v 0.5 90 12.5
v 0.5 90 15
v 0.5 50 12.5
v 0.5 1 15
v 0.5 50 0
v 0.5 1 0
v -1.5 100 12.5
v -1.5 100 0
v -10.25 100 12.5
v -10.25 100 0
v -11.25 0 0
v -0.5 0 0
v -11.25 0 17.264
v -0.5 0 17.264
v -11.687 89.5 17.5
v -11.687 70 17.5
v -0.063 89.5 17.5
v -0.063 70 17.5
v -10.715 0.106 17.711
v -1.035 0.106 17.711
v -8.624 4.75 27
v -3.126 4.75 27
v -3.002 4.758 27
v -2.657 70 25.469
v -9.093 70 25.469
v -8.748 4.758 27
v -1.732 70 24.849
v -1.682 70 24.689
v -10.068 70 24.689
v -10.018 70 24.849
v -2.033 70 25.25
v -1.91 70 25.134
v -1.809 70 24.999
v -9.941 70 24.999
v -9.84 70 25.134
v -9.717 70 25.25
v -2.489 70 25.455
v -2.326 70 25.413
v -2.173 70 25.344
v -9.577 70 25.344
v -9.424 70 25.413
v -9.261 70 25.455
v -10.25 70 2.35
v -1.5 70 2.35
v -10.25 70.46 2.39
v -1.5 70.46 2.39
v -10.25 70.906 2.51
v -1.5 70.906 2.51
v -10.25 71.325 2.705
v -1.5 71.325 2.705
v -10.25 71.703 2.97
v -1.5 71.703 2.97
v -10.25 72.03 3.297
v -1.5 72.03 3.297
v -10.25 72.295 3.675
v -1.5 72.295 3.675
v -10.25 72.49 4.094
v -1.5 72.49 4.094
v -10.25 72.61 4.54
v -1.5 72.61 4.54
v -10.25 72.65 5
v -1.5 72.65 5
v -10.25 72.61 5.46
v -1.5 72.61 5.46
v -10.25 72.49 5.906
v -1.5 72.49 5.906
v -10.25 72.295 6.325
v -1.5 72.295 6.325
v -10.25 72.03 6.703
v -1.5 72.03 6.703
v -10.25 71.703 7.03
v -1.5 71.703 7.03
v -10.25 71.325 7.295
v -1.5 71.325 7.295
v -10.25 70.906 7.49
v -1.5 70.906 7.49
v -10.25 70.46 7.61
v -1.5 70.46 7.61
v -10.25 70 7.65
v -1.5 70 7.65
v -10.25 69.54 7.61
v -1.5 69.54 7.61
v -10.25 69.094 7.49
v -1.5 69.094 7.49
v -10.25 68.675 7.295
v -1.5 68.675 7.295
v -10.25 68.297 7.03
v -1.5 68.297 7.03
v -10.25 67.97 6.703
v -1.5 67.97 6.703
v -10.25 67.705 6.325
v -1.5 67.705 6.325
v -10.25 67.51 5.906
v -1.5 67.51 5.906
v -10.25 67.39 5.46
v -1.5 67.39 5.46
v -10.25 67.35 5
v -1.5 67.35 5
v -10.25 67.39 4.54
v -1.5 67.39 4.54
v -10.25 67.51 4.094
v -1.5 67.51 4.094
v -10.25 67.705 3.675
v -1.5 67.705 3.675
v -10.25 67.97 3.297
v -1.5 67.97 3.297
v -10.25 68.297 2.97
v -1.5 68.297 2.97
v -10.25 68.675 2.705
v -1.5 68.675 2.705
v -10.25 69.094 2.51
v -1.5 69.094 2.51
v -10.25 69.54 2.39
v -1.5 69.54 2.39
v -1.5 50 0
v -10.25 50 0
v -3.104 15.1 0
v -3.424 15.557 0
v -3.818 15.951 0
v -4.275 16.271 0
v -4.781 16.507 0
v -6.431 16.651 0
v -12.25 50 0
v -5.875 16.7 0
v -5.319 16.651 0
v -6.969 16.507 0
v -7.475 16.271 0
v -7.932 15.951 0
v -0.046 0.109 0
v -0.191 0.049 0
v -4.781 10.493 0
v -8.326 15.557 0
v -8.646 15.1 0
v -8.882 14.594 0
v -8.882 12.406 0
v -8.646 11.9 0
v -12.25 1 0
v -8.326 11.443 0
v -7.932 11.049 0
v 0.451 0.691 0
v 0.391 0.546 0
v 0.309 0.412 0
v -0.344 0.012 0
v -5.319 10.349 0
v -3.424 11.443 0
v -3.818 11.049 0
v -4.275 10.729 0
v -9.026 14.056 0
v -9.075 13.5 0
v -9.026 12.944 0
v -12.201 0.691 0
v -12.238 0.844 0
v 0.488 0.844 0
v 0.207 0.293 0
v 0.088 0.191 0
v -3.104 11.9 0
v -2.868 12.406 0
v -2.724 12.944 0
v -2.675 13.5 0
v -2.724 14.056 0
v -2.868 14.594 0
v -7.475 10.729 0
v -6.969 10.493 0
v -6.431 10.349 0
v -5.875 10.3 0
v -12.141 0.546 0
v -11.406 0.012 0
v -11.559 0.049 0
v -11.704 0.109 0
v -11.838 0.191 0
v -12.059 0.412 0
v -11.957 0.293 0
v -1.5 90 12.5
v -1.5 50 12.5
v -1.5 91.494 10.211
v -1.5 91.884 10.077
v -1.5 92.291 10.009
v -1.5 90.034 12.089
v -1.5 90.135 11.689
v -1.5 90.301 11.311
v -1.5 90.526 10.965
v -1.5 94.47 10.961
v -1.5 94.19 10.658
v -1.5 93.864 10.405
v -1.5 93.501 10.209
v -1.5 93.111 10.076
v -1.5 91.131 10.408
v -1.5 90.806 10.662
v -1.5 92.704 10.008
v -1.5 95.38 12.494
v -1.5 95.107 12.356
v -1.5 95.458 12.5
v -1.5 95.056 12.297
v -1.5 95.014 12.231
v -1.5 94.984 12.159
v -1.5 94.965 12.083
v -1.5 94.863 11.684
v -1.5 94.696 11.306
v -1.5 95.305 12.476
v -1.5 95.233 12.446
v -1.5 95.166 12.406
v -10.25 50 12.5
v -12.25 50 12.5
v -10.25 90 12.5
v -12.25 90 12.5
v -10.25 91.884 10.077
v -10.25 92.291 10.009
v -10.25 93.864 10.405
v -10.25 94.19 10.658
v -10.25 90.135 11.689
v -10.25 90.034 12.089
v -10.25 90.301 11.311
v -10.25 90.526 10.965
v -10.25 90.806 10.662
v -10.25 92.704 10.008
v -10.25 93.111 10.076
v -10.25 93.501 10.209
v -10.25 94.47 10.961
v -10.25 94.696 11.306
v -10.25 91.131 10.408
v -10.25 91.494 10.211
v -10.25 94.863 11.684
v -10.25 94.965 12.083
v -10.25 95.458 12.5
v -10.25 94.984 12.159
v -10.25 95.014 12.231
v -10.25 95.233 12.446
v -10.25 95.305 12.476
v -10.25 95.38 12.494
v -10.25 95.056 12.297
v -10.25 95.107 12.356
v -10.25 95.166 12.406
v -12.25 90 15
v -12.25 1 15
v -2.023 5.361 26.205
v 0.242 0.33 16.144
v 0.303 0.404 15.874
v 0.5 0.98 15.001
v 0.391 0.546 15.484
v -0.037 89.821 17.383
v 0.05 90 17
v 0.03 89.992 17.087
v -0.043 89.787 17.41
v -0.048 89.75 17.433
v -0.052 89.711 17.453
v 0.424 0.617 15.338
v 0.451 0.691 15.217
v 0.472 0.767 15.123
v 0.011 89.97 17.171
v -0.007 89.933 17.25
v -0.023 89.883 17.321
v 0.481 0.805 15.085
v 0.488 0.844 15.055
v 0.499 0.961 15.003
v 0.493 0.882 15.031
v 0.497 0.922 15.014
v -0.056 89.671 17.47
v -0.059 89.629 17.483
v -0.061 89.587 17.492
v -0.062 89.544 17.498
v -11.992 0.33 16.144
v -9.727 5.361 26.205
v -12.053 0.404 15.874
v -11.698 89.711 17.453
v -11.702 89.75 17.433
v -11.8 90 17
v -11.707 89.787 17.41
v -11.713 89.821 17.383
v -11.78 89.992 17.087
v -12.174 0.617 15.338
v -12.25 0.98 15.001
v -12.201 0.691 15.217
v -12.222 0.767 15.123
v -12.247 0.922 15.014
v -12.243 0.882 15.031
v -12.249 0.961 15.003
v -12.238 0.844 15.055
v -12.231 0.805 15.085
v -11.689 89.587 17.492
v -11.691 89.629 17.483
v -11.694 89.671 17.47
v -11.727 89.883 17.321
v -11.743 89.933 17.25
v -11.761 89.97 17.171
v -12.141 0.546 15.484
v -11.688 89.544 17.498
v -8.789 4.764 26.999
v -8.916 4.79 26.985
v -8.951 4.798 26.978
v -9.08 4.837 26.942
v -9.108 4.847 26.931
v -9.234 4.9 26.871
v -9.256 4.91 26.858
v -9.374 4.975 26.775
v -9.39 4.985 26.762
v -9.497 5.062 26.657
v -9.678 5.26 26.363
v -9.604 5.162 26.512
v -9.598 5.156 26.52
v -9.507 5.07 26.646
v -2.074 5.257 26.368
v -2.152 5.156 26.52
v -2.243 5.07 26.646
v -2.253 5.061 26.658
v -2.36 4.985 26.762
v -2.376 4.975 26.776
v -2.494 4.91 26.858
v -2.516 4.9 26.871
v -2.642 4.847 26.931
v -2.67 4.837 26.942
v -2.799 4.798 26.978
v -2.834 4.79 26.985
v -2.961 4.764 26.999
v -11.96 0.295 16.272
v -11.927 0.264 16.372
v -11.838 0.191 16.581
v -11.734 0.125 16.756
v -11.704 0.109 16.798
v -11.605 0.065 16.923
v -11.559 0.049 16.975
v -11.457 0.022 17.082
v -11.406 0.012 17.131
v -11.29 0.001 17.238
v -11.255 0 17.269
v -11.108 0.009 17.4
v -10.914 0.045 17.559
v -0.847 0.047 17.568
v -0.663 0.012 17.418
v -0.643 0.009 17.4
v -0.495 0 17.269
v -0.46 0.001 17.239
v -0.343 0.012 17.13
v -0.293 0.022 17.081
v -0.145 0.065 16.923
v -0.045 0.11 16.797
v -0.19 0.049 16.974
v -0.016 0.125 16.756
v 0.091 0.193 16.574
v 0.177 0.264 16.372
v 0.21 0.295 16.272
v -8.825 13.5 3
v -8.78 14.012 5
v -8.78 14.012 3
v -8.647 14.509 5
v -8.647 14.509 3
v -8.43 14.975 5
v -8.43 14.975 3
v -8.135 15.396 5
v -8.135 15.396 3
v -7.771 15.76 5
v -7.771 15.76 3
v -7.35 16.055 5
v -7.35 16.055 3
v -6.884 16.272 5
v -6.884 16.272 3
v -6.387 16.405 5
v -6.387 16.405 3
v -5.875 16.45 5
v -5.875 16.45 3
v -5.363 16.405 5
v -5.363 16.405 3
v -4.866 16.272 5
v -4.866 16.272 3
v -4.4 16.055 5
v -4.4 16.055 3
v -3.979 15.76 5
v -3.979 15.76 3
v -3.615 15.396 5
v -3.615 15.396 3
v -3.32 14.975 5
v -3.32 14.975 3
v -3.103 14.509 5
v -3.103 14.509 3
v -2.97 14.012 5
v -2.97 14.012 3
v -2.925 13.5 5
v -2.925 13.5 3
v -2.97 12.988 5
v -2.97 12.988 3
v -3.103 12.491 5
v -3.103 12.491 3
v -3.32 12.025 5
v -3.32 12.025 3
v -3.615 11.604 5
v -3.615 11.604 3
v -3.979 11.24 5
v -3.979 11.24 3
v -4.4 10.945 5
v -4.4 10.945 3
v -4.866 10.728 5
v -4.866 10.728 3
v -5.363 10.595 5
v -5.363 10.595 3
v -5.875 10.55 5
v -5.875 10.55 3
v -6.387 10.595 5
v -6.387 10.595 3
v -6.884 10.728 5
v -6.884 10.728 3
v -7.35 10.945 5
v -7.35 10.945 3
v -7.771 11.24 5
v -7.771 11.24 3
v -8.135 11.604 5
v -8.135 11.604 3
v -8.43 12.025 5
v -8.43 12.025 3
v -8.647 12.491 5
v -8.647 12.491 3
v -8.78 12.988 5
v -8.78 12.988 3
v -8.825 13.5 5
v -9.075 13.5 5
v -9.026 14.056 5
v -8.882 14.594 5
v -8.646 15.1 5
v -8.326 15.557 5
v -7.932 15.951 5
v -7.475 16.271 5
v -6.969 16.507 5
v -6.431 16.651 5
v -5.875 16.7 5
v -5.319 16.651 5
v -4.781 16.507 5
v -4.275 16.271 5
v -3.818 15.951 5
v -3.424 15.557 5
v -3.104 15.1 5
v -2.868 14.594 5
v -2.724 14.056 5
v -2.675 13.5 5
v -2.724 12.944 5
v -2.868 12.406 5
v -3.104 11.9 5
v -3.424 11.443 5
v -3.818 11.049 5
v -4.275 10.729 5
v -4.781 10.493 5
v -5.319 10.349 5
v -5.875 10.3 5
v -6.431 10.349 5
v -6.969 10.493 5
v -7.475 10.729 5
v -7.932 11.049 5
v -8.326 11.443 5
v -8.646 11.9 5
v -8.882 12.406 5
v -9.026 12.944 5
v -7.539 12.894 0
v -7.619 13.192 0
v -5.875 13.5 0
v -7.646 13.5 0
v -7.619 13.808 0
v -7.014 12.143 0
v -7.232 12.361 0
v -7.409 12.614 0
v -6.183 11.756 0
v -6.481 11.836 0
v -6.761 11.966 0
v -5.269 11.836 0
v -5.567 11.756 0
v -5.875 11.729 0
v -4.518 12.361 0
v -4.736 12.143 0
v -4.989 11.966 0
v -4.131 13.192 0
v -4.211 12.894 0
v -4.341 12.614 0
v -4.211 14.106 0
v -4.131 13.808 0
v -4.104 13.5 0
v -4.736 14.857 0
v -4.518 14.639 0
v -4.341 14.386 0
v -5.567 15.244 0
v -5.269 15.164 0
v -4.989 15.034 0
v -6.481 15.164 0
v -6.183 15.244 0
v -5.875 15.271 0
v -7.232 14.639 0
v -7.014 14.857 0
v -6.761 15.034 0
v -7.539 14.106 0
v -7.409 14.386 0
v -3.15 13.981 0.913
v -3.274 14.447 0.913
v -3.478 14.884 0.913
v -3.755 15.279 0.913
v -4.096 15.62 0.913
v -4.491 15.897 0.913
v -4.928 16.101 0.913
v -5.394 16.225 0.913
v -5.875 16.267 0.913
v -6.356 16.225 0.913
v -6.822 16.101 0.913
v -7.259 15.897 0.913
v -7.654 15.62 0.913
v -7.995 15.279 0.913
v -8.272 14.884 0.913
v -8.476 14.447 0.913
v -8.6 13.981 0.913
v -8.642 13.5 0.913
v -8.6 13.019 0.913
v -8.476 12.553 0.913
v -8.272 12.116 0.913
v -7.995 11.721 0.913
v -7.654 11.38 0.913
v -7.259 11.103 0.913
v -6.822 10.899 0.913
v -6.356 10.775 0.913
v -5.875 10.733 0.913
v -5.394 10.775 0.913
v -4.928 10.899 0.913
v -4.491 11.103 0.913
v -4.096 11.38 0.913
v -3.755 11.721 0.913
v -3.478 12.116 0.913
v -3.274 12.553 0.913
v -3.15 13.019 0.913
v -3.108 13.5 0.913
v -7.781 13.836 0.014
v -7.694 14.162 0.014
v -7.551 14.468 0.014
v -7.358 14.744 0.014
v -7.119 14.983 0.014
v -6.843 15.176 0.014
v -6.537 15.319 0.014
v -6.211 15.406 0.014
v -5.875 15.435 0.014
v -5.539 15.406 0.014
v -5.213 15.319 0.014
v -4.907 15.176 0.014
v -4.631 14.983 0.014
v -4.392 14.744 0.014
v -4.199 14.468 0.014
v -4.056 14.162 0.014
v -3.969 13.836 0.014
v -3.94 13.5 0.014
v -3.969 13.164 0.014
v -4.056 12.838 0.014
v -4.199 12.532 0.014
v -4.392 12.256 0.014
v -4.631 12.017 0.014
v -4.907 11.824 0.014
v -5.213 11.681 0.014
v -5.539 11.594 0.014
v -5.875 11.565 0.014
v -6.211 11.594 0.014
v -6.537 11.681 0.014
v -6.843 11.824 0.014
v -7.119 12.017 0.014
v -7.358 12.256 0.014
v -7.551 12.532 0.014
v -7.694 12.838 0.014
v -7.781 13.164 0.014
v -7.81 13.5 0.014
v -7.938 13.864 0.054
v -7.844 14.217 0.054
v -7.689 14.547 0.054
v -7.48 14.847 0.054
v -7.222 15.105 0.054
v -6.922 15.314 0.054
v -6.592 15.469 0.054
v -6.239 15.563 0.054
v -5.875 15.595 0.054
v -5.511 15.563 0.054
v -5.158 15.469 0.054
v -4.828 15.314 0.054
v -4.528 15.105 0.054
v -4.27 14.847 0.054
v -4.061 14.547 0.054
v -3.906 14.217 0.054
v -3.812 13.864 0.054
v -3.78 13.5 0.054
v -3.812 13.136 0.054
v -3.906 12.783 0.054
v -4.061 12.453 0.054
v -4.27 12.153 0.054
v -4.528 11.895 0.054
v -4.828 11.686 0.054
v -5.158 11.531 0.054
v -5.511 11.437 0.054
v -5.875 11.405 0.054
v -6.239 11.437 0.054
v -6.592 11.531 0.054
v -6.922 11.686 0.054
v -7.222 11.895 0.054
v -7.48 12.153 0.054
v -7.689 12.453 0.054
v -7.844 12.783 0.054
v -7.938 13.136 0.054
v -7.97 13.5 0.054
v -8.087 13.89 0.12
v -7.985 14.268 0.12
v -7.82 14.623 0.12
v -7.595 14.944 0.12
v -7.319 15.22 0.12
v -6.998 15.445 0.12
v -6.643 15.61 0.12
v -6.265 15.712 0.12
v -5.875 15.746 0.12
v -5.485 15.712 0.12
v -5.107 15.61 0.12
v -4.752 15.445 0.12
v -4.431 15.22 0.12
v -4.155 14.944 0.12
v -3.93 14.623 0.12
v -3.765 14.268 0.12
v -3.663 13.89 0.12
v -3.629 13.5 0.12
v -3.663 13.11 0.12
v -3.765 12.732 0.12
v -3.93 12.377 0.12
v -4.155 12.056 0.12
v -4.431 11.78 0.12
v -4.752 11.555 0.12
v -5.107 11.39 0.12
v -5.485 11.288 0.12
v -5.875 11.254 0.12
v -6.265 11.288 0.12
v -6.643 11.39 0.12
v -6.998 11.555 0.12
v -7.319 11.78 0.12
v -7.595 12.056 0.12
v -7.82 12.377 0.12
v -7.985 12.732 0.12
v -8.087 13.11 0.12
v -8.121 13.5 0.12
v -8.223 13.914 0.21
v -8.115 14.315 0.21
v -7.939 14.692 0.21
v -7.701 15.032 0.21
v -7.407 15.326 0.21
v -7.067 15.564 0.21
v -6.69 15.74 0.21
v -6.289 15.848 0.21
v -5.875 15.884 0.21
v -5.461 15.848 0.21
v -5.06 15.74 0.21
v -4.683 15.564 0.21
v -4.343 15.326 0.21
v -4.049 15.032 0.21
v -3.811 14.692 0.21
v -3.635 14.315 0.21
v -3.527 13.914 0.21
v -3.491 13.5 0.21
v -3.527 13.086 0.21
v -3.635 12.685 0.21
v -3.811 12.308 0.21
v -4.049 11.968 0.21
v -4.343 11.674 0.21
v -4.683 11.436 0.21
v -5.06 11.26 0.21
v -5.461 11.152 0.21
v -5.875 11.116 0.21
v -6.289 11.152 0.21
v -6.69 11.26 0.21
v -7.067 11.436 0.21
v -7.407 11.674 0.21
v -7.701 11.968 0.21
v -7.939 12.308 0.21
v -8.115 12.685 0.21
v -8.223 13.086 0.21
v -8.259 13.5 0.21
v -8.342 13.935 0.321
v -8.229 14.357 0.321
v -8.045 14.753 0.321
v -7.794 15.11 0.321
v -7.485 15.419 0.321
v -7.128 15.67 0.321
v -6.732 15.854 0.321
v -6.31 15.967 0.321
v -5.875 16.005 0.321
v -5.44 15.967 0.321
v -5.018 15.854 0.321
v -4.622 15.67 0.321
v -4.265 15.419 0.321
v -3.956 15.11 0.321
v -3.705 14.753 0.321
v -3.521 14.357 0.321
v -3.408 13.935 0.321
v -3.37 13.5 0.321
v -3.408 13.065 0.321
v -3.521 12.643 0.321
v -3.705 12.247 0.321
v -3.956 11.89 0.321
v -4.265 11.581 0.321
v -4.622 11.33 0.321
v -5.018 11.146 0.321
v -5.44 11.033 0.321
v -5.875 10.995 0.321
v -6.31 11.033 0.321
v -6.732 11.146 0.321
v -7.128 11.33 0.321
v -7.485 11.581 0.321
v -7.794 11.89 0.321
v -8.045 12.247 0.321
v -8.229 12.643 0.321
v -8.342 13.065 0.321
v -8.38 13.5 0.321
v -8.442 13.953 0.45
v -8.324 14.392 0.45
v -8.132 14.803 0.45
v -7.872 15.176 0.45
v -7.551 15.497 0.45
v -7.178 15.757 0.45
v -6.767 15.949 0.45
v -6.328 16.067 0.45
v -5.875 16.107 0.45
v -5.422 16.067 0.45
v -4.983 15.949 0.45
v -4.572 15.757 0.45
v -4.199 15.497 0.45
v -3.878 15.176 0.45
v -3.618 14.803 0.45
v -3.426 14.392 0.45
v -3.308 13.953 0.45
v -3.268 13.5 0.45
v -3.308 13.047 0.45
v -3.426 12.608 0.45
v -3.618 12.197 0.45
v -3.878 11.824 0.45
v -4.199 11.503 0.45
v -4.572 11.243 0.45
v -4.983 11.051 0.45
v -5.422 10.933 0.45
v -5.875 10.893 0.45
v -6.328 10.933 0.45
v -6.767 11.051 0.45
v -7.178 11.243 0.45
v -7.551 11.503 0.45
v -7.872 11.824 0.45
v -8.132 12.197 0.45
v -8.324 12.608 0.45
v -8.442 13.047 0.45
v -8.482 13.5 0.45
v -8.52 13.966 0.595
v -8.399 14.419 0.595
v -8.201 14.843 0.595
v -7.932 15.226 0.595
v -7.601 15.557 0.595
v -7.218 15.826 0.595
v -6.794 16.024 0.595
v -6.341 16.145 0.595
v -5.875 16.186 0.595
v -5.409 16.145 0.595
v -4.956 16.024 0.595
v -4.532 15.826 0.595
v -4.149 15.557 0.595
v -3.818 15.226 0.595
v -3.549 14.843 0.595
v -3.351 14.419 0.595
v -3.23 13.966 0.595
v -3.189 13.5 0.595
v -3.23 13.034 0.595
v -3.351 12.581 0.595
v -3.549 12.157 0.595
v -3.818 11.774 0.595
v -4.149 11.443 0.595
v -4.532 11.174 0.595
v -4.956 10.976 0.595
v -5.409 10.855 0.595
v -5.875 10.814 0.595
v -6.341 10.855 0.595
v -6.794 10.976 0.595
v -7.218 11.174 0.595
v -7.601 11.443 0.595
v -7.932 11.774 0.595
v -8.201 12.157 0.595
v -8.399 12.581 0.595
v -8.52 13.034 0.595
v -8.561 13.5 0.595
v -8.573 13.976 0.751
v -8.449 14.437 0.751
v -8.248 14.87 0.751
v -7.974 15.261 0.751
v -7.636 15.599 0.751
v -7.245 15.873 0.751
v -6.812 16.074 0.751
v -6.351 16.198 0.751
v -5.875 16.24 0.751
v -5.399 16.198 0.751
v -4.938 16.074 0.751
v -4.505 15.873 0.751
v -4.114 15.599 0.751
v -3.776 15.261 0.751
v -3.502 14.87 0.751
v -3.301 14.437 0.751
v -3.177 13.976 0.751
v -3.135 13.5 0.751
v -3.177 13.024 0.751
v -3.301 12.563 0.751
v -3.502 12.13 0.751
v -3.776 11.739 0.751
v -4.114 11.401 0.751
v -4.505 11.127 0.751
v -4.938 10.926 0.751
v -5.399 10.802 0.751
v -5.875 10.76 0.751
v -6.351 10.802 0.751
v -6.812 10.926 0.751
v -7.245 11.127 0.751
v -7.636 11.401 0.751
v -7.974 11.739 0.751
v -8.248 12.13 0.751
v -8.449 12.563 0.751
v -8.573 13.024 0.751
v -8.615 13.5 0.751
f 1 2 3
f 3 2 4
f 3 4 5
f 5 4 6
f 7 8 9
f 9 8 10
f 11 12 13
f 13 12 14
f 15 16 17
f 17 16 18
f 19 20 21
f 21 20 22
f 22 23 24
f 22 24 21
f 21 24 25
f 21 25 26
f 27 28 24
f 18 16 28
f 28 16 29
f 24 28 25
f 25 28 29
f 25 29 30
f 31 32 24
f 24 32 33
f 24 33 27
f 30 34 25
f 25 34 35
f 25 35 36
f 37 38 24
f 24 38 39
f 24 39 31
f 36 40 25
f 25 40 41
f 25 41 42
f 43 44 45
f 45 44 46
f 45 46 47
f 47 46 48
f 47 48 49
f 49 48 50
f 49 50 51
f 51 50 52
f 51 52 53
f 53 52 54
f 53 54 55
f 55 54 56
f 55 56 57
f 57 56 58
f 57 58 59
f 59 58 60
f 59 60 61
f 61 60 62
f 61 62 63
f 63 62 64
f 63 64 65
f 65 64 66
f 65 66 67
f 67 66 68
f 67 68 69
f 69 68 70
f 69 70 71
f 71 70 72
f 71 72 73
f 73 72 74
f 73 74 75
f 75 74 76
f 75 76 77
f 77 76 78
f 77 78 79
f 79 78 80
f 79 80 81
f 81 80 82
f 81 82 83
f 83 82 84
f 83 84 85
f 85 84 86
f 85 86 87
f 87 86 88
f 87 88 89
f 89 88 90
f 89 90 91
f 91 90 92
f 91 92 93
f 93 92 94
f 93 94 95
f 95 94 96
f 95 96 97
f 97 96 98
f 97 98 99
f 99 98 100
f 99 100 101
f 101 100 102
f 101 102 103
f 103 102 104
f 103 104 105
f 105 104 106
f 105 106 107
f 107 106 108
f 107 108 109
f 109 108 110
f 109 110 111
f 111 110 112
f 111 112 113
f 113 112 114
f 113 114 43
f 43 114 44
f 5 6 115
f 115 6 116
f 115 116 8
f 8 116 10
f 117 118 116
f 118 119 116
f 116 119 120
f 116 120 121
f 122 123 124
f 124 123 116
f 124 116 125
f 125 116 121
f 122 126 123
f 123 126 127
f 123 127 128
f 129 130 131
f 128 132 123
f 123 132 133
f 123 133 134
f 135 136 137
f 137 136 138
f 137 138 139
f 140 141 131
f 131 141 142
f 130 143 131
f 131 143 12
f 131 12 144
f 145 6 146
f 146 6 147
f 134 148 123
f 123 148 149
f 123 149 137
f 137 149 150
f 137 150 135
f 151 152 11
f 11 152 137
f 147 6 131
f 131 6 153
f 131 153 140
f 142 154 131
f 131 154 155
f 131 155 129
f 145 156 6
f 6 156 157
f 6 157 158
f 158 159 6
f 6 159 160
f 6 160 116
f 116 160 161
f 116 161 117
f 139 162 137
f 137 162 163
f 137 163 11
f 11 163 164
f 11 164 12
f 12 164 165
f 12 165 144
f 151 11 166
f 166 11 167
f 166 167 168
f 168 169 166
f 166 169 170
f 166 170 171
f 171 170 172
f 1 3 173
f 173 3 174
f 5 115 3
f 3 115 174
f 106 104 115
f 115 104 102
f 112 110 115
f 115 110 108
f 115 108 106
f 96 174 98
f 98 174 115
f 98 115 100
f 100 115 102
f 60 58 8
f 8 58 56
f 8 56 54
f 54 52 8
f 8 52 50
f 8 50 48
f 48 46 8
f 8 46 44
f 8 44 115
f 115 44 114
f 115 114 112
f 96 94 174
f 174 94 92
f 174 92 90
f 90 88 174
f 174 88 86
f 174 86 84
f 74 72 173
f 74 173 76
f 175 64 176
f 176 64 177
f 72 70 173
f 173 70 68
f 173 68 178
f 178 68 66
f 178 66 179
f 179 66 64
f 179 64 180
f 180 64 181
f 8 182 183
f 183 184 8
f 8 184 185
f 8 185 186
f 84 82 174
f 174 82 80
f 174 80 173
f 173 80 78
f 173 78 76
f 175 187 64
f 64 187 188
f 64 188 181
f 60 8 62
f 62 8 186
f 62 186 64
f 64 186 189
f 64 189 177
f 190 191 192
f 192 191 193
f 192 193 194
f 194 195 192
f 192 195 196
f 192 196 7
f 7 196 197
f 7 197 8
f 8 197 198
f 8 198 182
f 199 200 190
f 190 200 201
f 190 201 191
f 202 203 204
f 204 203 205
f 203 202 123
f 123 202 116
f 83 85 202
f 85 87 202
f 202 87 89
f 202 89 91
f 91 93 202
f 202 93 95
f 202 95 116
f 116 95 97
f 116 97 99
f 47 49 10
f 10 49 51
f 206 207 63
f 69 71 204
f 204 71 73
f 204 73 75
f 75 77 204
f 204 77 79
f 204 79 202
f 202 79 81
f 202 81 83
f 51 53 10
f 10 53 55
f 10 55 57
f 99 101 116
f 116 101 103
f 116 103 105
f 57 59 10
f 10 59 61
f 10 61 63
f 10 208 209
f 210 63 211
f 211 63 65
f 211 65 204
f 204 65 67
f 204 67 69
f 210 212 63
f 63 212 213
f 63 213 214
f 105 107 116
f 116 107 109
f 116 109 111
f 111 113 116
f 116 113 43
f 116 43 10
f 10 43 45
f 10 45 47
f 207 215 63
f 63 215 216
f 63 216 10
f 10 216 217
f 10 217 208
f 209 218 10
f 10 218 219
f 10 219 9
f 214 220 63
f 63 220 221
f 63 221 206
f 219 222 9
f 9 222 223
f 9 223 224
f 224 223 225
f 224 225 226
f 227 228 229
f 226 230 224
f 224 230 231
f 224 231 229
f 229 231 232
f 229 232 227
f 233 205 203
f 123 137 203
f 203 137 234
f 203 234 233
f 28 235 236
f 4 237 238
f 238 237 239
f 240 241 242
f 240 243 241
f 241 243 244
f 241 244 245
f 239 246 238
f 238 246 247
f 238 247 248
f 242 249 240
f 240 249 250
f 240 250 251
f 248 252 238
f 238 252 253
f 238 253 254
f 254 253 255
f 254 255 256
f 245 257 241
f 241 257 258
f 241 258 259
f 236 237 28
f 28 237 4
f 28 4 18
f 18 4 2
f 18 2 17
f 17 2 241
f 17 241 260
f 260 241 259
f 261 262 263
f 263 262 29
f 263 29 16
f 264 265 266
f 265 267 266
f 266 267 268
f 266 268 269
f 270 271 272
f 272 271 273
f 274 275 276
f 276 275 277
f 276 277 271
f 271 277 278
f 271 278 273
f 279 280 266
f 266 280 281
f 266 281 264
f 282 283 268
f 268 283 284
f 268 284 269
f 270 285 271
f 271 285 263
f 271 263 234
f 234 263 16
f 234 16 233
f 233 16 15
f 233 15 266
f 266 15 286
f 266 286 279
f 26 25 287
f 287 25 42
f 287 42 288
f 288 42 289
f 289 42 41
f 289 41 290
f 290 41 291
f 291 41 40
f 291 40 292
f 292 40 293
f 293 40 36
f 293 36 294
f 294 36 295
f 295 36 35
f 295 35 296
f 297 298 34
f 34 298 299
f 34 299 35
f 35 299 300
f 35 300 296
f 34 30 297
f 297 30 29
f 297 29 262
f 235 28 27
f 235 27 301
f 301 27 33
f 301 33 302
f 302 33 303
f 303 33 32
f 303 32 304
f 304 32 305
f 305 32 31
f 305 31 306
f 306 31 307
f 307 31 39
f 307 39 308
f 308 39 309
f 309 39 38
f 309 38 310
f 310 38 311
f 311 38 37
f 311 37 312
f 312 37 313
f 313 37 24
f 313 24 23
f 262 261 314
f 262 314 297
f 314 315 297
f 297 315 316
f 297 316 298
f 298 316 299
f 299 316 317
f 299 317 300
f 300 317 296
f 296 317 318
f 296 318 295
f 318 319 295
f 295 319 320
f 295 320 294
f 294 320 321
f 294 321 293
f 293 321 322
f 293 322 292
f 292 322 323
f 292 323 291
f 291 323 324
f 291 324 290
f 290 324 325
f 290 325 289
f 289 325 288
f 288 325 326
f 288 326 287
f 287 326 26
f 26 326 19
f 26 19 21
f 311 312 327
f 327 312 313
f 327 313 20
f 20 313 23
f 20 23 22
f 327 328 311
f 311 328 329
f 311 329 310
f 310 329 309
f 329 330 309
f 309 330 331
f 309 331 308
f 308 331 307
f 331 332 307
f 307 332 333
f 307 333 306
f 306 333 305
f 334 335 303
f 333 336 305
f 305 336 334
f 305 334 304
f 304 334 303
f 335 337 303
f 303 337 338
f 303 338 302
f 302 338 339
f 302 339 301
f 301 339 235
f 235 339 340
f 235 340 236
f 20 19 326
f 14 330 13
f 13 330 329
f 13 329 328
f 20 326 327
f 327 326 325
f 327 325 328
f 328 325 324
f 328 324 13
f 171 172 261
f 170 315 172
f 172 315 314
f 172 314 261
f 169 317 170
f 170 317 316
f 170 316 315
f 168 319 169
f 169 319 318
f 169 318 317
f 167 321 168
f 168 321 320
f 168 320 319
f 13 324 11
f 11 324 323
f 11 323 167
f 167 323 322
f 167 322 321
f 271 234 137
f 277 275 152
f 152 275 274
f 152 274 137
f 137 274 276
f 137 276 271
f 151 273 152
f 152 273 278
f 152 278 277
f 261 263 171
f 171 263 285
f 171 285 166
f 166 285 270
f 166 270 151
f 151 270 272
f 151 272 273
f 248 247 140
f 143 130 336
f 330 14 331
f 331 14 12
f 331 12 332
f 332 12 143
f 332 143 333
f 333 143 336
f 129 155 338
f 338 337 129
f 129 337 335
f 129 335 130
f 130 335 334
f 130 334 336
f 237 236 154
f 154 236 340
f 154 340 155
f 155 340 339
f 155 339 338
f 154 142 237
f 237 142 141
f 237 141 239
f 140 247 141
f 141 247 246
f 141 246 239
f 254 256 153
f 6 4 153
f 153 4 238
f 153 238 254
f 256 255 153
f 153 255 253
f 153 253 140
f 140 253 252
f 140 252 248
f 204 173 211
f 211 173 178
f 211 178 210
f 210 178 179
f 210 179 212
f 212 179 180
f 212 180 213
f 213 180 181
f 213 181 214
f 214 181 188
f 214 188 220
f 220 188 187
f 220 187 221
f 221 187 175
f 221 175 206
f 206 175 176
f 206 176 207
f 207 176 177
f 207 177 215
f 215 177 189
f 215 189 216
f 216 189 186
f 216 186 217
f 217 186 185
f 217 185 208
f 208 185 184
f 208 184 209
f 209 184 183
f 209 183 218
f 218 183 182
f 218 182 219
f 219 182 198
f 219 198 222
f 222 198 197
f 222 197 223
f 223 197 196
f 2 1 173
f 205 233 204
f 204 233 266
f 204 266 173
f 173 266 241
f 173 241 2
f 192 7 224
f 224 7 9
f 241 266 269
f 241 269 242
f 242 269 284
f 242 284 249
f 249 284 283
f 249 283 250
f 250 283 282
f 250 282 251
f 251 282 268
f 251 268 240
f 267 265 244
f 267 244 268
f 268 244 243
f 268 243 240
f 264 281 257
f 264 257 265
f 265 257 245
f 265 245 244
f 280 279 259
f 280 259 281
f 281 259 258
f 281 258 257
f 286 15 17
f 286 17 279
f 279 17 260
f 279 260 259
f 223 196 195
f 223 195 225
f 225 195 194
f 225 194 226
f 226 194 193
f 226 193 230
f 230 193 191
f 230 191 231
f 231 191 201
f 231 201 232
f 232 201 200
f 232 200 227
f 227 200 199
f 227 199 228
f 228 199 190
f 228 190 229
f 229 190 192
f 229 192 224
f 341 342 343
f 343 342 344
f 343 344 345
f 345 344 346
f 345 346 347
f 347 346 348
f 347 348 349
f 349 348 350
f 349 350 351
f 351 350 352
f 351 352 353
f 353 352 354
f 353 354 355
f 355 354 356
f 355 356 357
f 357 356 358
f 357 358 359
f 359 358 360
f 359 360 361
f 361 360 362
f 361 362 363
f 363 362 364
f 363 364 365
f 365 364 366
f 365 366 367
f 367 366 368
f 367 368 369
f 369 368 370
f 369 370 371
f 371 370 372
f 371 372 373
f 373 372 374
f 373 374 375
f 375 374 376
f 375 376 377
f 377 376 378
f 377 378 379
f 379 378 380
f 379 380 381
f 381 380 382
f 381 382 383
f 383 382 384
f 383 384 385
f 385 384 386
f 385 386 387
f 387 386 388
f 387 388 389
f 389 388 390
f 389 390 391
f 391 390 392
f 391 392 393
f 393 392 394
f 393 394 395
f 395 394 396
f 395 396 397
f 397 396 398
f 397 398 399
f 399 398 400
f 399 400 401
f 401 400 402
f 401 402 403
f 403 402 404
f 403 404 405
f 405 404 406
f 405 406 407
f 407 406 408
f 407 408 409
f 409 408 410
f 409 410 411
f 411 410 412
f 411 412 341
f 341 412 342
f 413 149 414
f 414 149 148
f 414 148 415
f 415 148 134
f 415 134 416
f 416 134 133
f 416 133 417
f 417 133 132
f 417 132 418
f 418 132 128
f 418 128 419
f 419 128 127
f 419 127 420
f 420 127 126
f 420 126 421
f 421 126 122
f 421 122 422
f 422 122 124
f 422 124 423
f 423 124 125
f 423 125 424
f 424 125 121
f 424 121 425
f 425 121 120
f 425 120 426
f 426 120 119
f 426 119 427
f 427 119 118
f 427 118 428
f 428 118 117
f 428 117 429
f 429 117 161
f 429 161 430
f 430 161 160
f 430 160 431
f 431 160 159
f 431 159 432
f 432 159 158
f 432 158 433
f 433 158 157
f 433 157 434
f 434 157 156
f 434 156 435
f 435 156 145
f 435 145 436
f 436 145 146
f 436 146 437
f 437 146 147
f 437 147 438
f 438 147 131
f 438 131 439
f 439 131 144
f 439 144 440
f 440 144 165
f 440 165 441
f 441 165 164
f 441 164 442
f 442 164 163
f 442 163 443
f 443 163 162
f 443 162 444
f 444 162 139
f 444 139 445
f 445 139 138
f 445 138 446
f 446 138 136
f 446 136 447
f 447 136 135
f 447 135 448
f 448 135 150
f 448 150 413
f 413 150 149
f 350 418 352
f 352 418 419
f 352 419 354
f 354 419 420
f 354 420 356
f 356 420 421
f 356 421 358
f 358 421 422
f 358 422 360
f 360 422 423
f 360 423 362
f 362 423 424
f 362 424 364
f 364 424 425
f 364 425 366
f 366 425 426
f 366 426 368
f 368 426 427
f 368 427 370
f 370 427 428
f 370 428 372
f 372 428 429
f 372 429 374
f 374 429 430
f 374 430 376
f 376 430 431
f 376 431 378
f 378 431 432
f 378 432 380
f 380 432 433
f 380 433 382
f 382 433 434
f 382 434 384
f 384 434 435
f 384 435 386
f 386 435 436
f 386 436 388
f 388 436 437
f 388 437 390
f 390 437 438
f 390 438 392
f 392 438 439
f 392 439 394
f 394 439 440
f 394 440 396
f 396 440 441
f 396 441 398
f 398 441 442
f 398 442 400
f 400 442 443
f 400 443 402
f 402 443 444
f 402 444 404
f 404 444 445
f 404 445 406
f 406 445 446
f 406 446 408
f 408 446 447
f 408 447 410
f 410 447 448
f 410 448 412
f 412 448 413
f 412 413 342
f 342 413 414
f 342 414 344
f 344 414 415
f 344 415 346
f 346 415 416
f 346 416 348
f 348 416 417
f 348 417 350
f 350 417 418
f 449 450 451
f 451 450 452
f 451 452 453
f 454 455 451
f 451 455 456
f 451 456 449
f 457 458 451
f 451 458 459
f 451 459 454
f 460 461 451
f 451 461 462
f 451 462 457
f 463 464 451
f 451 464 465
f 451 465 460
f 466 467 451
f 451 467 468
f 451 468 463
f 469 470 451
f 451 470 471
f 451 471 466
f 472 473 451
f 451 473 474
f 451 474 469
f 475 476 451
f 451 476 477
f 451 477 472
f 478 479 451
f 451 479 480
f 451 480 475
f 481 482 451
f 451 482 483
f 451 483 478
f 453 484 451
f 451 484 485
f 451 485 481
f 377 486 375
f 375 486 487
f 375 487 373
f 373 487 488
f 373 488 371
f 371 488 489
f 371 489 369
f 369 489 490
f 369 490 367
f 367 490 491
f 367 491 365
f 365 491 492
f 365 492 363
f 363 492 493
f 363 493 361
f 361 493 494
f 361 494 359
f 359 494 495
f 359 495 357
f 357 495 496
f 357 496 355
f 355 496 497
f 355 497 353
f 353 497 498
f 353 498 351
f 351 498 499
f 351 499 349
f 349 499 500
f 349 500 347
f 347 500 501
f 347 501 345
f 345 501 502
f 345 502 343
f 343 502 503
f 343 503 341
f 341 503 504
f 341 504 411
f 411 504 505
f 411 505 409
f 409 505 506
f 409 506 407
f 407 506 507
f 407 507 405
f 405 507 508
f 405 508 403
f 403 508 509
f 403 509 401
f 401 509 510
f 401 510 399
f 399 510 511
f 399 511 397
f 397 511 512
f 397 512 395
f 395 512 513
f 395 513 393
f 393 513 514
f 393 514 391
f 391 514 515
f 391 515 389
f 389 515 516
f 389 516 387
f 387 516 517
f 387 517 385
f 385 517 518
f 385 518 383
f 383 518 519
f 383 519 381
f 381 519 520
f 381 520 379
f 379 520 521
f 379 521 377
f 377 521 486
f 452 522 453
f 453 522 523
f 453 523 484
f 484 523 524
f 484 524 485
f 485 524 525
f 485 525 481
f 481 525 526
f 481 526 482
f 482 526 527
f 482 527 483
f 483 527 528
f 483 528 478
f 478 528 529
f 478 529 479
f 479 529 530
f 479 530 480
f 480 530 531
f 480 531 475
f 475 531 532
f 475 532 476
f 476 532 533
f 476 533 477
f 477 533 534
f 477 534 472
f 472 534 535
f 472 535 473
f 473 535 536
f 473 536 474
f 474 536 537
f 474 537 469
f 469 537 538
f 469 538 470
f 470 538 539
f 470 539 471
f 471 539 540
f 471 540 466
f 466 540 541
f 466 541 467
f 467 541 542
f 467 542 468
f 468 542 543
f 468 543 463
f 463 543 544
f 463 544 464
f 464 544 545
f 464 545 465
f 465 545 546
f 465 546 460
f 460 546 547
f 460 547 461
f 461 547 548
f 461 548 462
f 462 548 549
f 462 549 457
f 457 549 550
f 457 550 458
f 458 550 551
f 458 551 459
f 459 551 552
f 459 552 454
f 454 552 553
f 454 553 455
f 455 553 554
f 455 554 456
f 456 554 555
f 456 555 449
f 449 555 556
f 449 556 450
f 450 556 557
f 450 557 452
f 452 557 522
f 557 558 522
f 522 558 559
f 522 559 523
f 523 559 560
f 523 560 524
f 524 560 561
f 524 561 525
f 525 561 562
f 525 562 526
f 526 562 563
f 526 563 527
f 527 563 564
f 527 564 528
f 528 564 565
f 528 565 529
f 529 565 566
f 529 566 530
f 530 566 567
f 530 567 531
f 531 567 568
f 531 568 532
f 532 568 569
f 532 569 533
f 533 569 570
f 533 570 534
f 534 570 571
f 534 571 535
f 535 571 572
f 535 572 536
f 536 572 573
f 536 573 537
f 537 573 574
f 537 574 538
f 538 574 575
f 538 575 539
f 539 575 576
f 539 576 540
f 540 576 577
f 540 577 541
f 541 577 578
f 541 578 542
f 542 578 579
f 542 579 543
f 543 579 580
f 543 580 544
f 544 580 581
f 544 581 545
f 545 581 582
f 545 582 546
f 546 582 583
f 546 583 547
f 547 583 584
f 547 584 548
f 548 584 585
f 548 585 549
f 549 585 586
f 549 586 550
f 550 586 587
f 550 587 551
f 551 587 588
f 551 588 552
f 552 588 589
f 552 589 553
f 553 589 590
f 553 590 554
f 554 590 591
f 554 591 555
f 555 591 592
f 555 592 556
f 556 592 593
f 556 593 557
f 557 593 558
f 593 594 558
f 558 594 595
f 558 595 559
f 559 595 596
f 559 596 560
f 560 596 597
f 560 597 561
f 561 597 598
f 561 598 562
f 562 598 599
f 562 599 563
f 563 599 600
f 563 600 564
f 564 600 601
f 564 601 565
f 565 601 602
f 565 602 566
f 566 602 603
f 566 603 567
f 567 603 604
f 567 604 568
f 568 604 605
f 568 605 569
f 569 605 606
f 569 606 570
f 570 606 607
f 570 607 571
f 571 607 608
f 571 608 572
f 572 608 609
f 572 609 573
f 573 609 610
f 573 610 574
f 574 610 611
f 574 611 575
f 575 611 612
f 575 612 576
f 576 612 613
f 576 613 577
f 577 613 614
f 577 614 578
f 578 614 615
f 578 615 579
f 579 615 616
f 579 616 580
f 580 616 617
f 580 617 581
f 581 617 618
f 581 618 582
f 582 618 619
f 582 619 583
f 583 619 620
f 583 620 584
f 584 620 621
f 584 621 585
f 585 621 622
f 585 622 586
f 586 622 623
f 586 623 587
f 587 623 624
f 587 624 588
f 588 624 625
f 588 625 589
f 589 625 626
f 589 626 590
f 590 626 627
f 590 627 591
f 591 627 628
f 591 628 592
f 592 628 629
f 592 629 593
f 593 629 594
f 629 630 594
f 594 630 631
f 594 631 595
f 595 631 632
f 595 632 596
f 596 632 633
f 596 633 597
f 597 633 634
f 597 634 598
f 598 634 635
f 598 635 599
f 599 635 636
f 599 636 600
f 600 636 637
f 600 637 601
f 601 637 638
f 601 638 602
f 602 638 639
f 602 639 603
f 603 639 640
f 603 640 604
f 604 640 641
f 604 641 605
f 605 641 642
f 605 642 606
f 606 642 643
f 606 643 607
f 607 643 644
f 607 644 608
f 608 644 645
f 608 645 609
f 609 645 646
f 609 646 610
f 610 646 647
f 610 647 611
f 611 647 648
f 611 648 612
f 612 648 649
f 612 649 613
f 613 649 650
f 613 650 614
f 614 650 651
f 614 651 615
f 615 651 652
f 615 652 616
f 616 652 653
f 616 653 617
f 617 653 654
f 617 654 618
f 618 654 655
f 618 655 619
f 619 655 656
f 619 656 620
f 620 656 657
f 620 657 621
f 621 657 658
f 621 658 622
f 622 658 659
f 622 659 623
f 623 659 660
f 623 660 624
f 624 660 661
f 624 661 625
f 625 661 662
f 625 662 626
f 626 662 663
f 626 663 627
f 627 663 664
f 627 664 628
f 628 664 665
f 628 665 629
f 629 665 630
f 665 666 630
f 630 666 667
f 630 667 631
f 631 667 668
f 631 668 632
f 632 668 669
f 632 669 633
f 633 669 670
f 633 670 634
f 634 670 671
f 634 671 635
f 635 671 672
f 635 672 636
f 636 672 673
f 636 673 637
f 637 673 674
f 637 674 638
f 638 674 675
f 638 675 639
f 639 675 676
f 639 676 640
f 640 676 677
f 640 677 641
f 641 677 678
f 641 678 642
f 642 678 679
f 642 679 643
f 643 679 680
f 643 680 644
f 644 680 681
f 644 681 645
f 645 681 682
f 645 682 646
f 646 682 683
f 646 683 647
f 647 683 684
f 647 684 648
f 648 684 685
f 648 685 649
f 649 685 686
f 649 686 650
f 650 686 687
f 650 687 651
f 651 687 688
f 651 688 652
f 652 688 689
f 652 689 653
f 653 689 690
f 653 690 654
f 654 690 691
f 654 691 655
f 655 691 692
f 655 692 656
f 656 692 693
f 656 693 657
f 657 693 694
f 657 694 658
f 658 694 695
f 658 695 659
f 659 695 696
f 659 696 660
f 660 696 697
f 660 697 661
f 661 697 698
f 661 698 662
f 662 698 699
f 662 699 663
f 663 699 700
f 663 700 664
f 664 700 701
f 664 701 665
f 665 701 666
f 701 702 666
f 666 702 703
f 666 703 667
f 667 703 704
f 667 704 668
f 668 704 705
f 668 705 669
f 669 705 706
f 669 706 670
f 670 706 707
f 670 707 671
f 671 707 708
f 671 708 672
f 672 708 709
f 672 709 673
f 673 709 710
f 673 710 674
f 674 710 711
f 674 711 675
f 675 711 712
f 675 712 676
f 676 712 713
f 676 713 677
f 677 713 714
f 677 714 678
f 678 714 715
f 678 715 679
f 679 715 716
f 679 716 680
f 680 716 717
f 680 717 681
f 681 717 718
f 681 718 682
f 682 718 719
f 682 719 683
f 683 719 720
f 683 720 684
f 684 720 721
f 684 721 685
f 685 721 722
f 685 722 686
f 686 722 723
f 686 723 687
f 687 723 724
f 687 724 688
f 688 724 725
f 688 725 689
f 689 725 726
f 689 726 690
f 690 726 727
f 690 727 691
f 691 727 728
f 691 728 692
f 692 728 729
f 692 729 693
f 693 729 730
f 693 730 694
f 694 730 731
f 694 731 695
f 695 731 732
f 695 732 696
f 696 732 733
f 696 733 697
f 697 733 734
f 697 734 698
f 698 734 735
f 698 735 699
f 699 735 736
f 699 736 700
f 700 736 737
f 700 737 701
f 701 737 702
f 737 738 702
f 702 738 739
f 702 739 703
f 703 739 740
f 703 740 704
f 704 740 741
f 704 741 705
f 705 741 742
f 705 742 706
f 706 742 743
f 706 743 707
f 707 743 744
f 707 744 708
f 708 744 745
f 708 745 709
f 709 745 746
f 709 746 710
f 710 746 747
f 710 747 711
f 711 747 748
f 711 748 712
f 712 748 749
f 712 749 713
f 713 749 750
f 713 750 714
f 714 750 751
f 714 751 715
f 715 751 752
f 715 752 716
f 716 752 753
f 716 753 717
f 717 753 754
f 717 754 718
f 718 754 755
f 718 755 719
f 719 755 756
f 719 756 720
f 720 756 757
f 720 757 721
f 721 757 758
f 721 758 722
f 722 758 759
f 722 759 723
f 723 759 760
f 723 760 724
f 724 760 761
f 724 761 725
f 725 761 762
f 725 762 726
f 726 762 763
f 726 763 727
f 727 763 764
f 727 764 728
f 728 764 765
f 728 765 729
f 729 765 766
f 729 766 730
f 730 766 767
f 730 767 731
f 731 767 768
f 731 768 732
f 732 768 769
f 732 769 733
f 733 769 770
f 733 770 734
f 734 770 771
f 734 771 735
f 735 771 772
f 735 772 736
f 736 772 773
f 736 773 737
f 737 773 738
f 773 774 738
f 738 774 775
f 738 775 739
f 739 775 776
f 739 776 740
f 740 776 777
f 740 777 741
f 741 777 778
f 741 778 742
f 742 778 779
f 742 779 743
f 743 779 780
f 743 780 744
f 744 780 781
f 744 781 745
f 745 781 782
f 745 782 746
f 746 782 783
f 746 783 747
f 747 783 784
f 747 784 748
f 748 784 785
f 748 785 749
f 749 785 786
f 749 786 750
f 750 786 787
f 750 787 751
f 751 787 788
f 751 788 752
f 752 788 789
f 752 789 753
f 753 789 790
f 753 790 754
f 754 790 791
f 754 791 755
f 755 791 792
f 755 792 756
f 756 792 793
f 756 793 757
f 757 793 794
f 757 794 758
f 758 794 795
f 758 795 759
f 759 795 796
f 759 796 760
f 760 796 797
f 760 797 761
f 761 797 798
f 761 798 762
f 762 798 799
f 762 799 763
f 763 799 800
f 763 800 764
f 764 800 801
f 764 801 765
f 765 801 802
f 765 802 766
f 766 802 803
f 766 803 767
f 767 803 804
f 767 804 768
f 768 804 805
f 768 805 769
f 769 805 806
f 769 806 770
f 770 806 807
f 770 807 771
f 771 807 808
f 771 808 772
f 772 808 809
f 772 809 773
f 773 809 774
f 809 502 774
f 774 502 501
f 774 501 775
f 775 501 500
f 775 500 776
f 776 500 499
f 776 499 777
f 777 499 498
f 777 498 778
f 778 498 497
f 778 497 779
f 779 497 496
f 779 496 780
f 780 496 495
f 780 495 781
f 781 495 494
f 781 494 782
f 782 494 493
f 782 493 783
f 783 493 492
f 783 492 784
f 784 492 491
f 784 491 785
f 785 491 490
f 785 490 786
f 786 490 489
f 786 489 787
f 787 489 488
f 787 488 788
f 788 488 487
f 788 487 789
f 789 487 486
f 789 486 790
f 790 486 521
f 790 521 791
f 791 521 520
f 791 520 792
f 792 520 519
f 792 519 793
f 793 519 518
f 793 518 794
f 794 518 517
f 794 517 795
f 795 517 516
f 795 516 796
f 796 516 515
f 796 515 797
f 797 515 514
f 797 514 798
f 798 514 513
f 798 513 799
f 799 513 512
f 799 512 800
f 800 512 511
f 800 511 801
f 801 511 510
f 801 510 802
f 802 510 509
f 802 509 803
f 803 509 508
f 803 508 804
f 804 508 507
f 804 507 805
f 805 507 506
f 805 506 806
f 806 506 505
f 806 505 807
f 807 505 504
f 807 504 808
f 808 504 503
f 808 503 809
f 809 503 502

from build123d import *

# Parameters (mm, degrees)
SKETCH1_W           = 100
SKETCH1_H           = 11.75
BOSS_EXTRUDE1_DEPTH = 17.5
SKETCH5_R           = 2.65
CUT_EXTRUDE2_DEPTH  = 103.197419243
SKETCH4_W           = 50
SKETCH4_H           = 12.5
SKETCH4_R           = 2.65
CUT_EXTRUDE3_DEPTH  = 1.5
BOSS_EXTRUDE3_DEPTH = 0.5
BOSS_EXTRUDE2_DEPTH = 12.75
CUT_EXTRUDE4_DEPTH  = 105.302744451
FILLET4_R           = 1
FILLET3_R           = 1
CUT_EXTRUDE5_REACH  = 100.641
CUT_EXTRUDE7_REACH  = 106.363
SKETCH13_W          = 5
SKETCH13_H          = 5
FILLET5_R           = 0.5
CUT_EXTRUDE6_DEPTH  = 5
CHAMFER1_SIZE       = 3
CHAMFER1_SIZE2      = 0.262465991
FILLET6_R           = 1


with BuildPart() as part:
    # Sketch1 → Boss-Extrude1 (new body)
    with BuildSketch(Plane(origin=(0, 0, 0), x_dir=(0, 1, 0), z_dir=(0, 0, 1))):
        with Locations((50, 5.875)):
            Rectangle(SKETCH1_W, SKETCH1_H)
    extrude(amount=BOSS_EXTRUDE1_DEPTH)

    # Sketch5 → Cut-Extrude2 (cut, through all)
    with BuildSketch(Plane.YZ):
        with Locations(Location((70, 5, 0), (0, 0, 270))):
            Circle(SKETCH5_R)
    extrude(amount=-CUT_EXTRUDE2_DEPTH, mode=Mode.SUBTRACT)

    # Sketch4 → Cut-Extrude3 (cut)
    with BuildSketch(Plane.YZ):
        with Locations((75, 6.25)):
            Rectangle(SKETCH4_W, SKETCH4_H)
        with Locations(Location((70, 5, 0), (0, 0, 270))):
            Circle(SKETCH4_R, mode=Mode.SUBTRACT)
    cut_extrude3 = extrude(amount=-CUT_EXTRUDE3_DEPTH, mode=Mode.SUBTRACT)

    # Mirror1: Cut-Extrude3 across plane
    add(cut_extrude3.mirror(Plane(origin=(-5.875, 0, 0), x_dir=(0, 0, 1), z_dir=(1, 0, 0))), mode=Mode.SUBTRACT)

    # Sketch9 → Boss-Extrude3 (add)
    with BuildSketch(Plane.YZ):
        Polygon((0, 17.5), (50, 17.5), (100, 17.5), (100, 12.5), (50, 12.5), (50, 0), (0, 0), align=None)
    boss_extrude3 = extrude(amount=BOSS_EXTRUDE3_DEPTH)

    # Mirror4: Boss-Extrude3 across plane
    add(boss_extrude3.mirror(Plane(origin=(-5.875, 0, 0), x_dir=(0, 0, 1), z_dir=(1, 0, 0))))

    # Sketch6 → Boss-Extrude2 (add)
    with BuildSketch(Plane.YZ.offset(0.5)):
        Polygon((4.75, 27), (0, 17.5), (70, 17.5), (70, 25.469208211), align=None)
    extrude(amount=-BOSS_EXTRUDE2_DEPTH)

    # Sketch7 → Cut-Extrude4 (cut, symmetric)
    with BuildSketch(Plane(origin=(0, 100, 0), x_dir=(-1, 0, 0), z_dir=(0, 1, 0))):
        Polygon((-15.35357036, -50.966517558), (-0.5, 15), (2.202019917, 27), (17.055590277, 92.966517558), (-114.877444838, 122.673658277), (-147.286605475, -21.259376838), align=None)
    cut_extrude4 = extrude(amount=CUT_EXTRUDE4_DEPTH, both=True, mode=Mode.SUBTRACT)

    # Mirror3: Cut-Extrude4 across plane
    add(cut_extrude4.mirror(Plane(origin=(-5.875, 0, 0), x_dir=(0, 0, 1), z_dir=(1, 0, 0))), mode=Mode.SUBTRACT)

    # Fillet4
    fillet4_edges = [part.edges().sort_by_distance(p)[0] for p in [
        (-2.029677005, 37.375, 26.234604106),
        (-1.132470367, 2.375, 22.25),
        (-5.875, 0, 17.5),
        (-9.720322995, 37.375, 26.234604106),
        (-10.617529633, 2.375, 22.25),
    ]]
    fillet(fillet4_edges, radius=FILLET4_R)

    # Fillet3
    # the kernel refuses this fillet: 1 mm, written as the material it takes off along each edge
    with BuildSketch(Plane(origin=(-12.25, 0, -2.5), x_dir=(1, 0, 0), z_dir=(0, 0, 1))) as fillet3_piece_1:
        with BuildLine():
            CenterArc((FILLET3_R, FILLET3_R), FILLET3_R, 180, 90)
            Line((0, FILLET3_R), (0, 0))
            Line((0, 0), (FILLET3_R, 0))
        make_face()
    extrude(amount=20, mode=Mode.SUBTRACT)
    with BuildSketch(Plane(origin=(0.5, 0, -2.5), x_dir=(-1, 0, 0), z_dir=(0, 0, 1))) as fillet3_piece_2:
        with BuildLine():
            CenterArc((FILLET3_R, -FILLET3_R), FILLET3_R, 90, 90)
            Line((0, -FILLET3_R), (0, 0))
            Line((0, 0), (FILLET3_R, 0))
        make_face()
    extrude(amount=20, mode=Mode.SUBTRACT)

    # Sketch11 → Cut-Extrude5 (cut, up to next)
    with BuildSketch(Plane(origin=(0.5, 95.880843205, 19.349640389), x_dir=(0, 0, 1), z_dir=(1, 0, 0)), mode=Mode.PRIVATE) as cut_extrude5_sk1:
        with BuildLine():
            Line((-6.849640389, 0.880843205), (-1.849640389, 0.880843205))
            ThreePointArc((-1.849640389, 0.880843205), (0.650359611, 3.380843205), (-1.849640389, 5.880843205))
            Line((-1.849640389, 5.880843205), (-6.849640389, 5.880843205))
            ThreePointArc((-6.849640389, 5.880843205), (-9.349640389, 3.380843205), (-6.849640389, 0.880843205))
        make_face()
    cut_extrude5_tool1 = extrude(cut_extrude5_sk1.sketch, amount=-CUT_EXTRUDE5_REACH, mode=Mode.PRIVATE) & part.part
    add(cut_extrude5_tool1.solids().sort_by_distance((0.5, 92.5, 15))[0], mode=Mode.SUBTRACT)

    # Sketch13 → Cut-Extrude7 (cut, up to next)
    with BuildSketch(Plane.YZ.offset(0.5), mode=Mode.PRIVATE) as cut_extrude7_sk1:
        with Locations((97.5, 15)):
            Rectangle(SKETCH13_W, SKETCH13_H)
    cut_extrude7_tool1 = extrude(cut_extrude7_sk1.sketch, amount=-CUT_EXTRUDE7_REACH, mode=Mode.PRIVATE) & part.part
    add(cut_extrude7_tool1.solids().sort_by_distance((0.5, 97.5, 15))[0], mode=Mode.SUBTRACT)

    # Fillet5
    fillet5_edges = [part.edges().sort_by_distance(p)[0] for p in [
        (-5.875, 95, 12.5),
        (-5.875, 90, 17.5),
    ]]
    fillet(fillet5_edges, radius=FILLET5_R)

    # Sketch12 → Cut-Extrude6 (cut)
    with BuildSketch(Plane(origin=(0, 0, 0), x_dir=(1, 0, 0), z_dir=(0, 0, -1))):
        with BuildLine():
            ThreePointArc((-2.675, -13.5), (-3.6122583, -11.2372583), (-5.875, -10.3))
            Line((-5.875, -10.3), (-5.875, -10.55))
            ThreePointArc((-5.875, -10.55), (-3.789034995, -11.414034995), (-2.925, -13.5))
            Line((-2.925, -13.5), (-2.675, -13.5))
        make_face()
        with BuildLine():
            Line((-5.875, -10.55), (-5.875, -10.3))
            ThreePointArc((-5.875, -10.3), (-8.1377417, -15.7627417), (-2.675, -13.5))
            Line((-2.675, -13.5), (-2.925, -13.5))
            ThreePointArc((-2.925, -13.5), (-7.960965005, -15.585965005), (-5.875, -10.55))
        make_face()
    extrude(amount=-CUT_EXTRUDE6_DEPTH, mode=Mode.SUBTRACT)

    # Chamfer1
    chamfer1_edges = [part.edges().sort_by_distance(p)[0] for p in [
        (-5.875, 16.45, 0),
    ]]
    chamfer1_side = [part.faces().sort_by_distance(p)[0] for p in [
        (-5.875, 16.45, 2.5),
    ]]
    chamfer(chamfer1_edges, length=CHAMFER1_SIZE, length2=CHAMFER1_SIZE2, reference=chamfer1_side[0])

    # Fillet6
    fillet6_edges = [part.edges().sort_by_distance(p)[0] for p in [
        (-5.875, 16.187534009, 0),
    ]]
    fillet(fillet6_edges, radius=FILLET6_R)


solid = part.part
